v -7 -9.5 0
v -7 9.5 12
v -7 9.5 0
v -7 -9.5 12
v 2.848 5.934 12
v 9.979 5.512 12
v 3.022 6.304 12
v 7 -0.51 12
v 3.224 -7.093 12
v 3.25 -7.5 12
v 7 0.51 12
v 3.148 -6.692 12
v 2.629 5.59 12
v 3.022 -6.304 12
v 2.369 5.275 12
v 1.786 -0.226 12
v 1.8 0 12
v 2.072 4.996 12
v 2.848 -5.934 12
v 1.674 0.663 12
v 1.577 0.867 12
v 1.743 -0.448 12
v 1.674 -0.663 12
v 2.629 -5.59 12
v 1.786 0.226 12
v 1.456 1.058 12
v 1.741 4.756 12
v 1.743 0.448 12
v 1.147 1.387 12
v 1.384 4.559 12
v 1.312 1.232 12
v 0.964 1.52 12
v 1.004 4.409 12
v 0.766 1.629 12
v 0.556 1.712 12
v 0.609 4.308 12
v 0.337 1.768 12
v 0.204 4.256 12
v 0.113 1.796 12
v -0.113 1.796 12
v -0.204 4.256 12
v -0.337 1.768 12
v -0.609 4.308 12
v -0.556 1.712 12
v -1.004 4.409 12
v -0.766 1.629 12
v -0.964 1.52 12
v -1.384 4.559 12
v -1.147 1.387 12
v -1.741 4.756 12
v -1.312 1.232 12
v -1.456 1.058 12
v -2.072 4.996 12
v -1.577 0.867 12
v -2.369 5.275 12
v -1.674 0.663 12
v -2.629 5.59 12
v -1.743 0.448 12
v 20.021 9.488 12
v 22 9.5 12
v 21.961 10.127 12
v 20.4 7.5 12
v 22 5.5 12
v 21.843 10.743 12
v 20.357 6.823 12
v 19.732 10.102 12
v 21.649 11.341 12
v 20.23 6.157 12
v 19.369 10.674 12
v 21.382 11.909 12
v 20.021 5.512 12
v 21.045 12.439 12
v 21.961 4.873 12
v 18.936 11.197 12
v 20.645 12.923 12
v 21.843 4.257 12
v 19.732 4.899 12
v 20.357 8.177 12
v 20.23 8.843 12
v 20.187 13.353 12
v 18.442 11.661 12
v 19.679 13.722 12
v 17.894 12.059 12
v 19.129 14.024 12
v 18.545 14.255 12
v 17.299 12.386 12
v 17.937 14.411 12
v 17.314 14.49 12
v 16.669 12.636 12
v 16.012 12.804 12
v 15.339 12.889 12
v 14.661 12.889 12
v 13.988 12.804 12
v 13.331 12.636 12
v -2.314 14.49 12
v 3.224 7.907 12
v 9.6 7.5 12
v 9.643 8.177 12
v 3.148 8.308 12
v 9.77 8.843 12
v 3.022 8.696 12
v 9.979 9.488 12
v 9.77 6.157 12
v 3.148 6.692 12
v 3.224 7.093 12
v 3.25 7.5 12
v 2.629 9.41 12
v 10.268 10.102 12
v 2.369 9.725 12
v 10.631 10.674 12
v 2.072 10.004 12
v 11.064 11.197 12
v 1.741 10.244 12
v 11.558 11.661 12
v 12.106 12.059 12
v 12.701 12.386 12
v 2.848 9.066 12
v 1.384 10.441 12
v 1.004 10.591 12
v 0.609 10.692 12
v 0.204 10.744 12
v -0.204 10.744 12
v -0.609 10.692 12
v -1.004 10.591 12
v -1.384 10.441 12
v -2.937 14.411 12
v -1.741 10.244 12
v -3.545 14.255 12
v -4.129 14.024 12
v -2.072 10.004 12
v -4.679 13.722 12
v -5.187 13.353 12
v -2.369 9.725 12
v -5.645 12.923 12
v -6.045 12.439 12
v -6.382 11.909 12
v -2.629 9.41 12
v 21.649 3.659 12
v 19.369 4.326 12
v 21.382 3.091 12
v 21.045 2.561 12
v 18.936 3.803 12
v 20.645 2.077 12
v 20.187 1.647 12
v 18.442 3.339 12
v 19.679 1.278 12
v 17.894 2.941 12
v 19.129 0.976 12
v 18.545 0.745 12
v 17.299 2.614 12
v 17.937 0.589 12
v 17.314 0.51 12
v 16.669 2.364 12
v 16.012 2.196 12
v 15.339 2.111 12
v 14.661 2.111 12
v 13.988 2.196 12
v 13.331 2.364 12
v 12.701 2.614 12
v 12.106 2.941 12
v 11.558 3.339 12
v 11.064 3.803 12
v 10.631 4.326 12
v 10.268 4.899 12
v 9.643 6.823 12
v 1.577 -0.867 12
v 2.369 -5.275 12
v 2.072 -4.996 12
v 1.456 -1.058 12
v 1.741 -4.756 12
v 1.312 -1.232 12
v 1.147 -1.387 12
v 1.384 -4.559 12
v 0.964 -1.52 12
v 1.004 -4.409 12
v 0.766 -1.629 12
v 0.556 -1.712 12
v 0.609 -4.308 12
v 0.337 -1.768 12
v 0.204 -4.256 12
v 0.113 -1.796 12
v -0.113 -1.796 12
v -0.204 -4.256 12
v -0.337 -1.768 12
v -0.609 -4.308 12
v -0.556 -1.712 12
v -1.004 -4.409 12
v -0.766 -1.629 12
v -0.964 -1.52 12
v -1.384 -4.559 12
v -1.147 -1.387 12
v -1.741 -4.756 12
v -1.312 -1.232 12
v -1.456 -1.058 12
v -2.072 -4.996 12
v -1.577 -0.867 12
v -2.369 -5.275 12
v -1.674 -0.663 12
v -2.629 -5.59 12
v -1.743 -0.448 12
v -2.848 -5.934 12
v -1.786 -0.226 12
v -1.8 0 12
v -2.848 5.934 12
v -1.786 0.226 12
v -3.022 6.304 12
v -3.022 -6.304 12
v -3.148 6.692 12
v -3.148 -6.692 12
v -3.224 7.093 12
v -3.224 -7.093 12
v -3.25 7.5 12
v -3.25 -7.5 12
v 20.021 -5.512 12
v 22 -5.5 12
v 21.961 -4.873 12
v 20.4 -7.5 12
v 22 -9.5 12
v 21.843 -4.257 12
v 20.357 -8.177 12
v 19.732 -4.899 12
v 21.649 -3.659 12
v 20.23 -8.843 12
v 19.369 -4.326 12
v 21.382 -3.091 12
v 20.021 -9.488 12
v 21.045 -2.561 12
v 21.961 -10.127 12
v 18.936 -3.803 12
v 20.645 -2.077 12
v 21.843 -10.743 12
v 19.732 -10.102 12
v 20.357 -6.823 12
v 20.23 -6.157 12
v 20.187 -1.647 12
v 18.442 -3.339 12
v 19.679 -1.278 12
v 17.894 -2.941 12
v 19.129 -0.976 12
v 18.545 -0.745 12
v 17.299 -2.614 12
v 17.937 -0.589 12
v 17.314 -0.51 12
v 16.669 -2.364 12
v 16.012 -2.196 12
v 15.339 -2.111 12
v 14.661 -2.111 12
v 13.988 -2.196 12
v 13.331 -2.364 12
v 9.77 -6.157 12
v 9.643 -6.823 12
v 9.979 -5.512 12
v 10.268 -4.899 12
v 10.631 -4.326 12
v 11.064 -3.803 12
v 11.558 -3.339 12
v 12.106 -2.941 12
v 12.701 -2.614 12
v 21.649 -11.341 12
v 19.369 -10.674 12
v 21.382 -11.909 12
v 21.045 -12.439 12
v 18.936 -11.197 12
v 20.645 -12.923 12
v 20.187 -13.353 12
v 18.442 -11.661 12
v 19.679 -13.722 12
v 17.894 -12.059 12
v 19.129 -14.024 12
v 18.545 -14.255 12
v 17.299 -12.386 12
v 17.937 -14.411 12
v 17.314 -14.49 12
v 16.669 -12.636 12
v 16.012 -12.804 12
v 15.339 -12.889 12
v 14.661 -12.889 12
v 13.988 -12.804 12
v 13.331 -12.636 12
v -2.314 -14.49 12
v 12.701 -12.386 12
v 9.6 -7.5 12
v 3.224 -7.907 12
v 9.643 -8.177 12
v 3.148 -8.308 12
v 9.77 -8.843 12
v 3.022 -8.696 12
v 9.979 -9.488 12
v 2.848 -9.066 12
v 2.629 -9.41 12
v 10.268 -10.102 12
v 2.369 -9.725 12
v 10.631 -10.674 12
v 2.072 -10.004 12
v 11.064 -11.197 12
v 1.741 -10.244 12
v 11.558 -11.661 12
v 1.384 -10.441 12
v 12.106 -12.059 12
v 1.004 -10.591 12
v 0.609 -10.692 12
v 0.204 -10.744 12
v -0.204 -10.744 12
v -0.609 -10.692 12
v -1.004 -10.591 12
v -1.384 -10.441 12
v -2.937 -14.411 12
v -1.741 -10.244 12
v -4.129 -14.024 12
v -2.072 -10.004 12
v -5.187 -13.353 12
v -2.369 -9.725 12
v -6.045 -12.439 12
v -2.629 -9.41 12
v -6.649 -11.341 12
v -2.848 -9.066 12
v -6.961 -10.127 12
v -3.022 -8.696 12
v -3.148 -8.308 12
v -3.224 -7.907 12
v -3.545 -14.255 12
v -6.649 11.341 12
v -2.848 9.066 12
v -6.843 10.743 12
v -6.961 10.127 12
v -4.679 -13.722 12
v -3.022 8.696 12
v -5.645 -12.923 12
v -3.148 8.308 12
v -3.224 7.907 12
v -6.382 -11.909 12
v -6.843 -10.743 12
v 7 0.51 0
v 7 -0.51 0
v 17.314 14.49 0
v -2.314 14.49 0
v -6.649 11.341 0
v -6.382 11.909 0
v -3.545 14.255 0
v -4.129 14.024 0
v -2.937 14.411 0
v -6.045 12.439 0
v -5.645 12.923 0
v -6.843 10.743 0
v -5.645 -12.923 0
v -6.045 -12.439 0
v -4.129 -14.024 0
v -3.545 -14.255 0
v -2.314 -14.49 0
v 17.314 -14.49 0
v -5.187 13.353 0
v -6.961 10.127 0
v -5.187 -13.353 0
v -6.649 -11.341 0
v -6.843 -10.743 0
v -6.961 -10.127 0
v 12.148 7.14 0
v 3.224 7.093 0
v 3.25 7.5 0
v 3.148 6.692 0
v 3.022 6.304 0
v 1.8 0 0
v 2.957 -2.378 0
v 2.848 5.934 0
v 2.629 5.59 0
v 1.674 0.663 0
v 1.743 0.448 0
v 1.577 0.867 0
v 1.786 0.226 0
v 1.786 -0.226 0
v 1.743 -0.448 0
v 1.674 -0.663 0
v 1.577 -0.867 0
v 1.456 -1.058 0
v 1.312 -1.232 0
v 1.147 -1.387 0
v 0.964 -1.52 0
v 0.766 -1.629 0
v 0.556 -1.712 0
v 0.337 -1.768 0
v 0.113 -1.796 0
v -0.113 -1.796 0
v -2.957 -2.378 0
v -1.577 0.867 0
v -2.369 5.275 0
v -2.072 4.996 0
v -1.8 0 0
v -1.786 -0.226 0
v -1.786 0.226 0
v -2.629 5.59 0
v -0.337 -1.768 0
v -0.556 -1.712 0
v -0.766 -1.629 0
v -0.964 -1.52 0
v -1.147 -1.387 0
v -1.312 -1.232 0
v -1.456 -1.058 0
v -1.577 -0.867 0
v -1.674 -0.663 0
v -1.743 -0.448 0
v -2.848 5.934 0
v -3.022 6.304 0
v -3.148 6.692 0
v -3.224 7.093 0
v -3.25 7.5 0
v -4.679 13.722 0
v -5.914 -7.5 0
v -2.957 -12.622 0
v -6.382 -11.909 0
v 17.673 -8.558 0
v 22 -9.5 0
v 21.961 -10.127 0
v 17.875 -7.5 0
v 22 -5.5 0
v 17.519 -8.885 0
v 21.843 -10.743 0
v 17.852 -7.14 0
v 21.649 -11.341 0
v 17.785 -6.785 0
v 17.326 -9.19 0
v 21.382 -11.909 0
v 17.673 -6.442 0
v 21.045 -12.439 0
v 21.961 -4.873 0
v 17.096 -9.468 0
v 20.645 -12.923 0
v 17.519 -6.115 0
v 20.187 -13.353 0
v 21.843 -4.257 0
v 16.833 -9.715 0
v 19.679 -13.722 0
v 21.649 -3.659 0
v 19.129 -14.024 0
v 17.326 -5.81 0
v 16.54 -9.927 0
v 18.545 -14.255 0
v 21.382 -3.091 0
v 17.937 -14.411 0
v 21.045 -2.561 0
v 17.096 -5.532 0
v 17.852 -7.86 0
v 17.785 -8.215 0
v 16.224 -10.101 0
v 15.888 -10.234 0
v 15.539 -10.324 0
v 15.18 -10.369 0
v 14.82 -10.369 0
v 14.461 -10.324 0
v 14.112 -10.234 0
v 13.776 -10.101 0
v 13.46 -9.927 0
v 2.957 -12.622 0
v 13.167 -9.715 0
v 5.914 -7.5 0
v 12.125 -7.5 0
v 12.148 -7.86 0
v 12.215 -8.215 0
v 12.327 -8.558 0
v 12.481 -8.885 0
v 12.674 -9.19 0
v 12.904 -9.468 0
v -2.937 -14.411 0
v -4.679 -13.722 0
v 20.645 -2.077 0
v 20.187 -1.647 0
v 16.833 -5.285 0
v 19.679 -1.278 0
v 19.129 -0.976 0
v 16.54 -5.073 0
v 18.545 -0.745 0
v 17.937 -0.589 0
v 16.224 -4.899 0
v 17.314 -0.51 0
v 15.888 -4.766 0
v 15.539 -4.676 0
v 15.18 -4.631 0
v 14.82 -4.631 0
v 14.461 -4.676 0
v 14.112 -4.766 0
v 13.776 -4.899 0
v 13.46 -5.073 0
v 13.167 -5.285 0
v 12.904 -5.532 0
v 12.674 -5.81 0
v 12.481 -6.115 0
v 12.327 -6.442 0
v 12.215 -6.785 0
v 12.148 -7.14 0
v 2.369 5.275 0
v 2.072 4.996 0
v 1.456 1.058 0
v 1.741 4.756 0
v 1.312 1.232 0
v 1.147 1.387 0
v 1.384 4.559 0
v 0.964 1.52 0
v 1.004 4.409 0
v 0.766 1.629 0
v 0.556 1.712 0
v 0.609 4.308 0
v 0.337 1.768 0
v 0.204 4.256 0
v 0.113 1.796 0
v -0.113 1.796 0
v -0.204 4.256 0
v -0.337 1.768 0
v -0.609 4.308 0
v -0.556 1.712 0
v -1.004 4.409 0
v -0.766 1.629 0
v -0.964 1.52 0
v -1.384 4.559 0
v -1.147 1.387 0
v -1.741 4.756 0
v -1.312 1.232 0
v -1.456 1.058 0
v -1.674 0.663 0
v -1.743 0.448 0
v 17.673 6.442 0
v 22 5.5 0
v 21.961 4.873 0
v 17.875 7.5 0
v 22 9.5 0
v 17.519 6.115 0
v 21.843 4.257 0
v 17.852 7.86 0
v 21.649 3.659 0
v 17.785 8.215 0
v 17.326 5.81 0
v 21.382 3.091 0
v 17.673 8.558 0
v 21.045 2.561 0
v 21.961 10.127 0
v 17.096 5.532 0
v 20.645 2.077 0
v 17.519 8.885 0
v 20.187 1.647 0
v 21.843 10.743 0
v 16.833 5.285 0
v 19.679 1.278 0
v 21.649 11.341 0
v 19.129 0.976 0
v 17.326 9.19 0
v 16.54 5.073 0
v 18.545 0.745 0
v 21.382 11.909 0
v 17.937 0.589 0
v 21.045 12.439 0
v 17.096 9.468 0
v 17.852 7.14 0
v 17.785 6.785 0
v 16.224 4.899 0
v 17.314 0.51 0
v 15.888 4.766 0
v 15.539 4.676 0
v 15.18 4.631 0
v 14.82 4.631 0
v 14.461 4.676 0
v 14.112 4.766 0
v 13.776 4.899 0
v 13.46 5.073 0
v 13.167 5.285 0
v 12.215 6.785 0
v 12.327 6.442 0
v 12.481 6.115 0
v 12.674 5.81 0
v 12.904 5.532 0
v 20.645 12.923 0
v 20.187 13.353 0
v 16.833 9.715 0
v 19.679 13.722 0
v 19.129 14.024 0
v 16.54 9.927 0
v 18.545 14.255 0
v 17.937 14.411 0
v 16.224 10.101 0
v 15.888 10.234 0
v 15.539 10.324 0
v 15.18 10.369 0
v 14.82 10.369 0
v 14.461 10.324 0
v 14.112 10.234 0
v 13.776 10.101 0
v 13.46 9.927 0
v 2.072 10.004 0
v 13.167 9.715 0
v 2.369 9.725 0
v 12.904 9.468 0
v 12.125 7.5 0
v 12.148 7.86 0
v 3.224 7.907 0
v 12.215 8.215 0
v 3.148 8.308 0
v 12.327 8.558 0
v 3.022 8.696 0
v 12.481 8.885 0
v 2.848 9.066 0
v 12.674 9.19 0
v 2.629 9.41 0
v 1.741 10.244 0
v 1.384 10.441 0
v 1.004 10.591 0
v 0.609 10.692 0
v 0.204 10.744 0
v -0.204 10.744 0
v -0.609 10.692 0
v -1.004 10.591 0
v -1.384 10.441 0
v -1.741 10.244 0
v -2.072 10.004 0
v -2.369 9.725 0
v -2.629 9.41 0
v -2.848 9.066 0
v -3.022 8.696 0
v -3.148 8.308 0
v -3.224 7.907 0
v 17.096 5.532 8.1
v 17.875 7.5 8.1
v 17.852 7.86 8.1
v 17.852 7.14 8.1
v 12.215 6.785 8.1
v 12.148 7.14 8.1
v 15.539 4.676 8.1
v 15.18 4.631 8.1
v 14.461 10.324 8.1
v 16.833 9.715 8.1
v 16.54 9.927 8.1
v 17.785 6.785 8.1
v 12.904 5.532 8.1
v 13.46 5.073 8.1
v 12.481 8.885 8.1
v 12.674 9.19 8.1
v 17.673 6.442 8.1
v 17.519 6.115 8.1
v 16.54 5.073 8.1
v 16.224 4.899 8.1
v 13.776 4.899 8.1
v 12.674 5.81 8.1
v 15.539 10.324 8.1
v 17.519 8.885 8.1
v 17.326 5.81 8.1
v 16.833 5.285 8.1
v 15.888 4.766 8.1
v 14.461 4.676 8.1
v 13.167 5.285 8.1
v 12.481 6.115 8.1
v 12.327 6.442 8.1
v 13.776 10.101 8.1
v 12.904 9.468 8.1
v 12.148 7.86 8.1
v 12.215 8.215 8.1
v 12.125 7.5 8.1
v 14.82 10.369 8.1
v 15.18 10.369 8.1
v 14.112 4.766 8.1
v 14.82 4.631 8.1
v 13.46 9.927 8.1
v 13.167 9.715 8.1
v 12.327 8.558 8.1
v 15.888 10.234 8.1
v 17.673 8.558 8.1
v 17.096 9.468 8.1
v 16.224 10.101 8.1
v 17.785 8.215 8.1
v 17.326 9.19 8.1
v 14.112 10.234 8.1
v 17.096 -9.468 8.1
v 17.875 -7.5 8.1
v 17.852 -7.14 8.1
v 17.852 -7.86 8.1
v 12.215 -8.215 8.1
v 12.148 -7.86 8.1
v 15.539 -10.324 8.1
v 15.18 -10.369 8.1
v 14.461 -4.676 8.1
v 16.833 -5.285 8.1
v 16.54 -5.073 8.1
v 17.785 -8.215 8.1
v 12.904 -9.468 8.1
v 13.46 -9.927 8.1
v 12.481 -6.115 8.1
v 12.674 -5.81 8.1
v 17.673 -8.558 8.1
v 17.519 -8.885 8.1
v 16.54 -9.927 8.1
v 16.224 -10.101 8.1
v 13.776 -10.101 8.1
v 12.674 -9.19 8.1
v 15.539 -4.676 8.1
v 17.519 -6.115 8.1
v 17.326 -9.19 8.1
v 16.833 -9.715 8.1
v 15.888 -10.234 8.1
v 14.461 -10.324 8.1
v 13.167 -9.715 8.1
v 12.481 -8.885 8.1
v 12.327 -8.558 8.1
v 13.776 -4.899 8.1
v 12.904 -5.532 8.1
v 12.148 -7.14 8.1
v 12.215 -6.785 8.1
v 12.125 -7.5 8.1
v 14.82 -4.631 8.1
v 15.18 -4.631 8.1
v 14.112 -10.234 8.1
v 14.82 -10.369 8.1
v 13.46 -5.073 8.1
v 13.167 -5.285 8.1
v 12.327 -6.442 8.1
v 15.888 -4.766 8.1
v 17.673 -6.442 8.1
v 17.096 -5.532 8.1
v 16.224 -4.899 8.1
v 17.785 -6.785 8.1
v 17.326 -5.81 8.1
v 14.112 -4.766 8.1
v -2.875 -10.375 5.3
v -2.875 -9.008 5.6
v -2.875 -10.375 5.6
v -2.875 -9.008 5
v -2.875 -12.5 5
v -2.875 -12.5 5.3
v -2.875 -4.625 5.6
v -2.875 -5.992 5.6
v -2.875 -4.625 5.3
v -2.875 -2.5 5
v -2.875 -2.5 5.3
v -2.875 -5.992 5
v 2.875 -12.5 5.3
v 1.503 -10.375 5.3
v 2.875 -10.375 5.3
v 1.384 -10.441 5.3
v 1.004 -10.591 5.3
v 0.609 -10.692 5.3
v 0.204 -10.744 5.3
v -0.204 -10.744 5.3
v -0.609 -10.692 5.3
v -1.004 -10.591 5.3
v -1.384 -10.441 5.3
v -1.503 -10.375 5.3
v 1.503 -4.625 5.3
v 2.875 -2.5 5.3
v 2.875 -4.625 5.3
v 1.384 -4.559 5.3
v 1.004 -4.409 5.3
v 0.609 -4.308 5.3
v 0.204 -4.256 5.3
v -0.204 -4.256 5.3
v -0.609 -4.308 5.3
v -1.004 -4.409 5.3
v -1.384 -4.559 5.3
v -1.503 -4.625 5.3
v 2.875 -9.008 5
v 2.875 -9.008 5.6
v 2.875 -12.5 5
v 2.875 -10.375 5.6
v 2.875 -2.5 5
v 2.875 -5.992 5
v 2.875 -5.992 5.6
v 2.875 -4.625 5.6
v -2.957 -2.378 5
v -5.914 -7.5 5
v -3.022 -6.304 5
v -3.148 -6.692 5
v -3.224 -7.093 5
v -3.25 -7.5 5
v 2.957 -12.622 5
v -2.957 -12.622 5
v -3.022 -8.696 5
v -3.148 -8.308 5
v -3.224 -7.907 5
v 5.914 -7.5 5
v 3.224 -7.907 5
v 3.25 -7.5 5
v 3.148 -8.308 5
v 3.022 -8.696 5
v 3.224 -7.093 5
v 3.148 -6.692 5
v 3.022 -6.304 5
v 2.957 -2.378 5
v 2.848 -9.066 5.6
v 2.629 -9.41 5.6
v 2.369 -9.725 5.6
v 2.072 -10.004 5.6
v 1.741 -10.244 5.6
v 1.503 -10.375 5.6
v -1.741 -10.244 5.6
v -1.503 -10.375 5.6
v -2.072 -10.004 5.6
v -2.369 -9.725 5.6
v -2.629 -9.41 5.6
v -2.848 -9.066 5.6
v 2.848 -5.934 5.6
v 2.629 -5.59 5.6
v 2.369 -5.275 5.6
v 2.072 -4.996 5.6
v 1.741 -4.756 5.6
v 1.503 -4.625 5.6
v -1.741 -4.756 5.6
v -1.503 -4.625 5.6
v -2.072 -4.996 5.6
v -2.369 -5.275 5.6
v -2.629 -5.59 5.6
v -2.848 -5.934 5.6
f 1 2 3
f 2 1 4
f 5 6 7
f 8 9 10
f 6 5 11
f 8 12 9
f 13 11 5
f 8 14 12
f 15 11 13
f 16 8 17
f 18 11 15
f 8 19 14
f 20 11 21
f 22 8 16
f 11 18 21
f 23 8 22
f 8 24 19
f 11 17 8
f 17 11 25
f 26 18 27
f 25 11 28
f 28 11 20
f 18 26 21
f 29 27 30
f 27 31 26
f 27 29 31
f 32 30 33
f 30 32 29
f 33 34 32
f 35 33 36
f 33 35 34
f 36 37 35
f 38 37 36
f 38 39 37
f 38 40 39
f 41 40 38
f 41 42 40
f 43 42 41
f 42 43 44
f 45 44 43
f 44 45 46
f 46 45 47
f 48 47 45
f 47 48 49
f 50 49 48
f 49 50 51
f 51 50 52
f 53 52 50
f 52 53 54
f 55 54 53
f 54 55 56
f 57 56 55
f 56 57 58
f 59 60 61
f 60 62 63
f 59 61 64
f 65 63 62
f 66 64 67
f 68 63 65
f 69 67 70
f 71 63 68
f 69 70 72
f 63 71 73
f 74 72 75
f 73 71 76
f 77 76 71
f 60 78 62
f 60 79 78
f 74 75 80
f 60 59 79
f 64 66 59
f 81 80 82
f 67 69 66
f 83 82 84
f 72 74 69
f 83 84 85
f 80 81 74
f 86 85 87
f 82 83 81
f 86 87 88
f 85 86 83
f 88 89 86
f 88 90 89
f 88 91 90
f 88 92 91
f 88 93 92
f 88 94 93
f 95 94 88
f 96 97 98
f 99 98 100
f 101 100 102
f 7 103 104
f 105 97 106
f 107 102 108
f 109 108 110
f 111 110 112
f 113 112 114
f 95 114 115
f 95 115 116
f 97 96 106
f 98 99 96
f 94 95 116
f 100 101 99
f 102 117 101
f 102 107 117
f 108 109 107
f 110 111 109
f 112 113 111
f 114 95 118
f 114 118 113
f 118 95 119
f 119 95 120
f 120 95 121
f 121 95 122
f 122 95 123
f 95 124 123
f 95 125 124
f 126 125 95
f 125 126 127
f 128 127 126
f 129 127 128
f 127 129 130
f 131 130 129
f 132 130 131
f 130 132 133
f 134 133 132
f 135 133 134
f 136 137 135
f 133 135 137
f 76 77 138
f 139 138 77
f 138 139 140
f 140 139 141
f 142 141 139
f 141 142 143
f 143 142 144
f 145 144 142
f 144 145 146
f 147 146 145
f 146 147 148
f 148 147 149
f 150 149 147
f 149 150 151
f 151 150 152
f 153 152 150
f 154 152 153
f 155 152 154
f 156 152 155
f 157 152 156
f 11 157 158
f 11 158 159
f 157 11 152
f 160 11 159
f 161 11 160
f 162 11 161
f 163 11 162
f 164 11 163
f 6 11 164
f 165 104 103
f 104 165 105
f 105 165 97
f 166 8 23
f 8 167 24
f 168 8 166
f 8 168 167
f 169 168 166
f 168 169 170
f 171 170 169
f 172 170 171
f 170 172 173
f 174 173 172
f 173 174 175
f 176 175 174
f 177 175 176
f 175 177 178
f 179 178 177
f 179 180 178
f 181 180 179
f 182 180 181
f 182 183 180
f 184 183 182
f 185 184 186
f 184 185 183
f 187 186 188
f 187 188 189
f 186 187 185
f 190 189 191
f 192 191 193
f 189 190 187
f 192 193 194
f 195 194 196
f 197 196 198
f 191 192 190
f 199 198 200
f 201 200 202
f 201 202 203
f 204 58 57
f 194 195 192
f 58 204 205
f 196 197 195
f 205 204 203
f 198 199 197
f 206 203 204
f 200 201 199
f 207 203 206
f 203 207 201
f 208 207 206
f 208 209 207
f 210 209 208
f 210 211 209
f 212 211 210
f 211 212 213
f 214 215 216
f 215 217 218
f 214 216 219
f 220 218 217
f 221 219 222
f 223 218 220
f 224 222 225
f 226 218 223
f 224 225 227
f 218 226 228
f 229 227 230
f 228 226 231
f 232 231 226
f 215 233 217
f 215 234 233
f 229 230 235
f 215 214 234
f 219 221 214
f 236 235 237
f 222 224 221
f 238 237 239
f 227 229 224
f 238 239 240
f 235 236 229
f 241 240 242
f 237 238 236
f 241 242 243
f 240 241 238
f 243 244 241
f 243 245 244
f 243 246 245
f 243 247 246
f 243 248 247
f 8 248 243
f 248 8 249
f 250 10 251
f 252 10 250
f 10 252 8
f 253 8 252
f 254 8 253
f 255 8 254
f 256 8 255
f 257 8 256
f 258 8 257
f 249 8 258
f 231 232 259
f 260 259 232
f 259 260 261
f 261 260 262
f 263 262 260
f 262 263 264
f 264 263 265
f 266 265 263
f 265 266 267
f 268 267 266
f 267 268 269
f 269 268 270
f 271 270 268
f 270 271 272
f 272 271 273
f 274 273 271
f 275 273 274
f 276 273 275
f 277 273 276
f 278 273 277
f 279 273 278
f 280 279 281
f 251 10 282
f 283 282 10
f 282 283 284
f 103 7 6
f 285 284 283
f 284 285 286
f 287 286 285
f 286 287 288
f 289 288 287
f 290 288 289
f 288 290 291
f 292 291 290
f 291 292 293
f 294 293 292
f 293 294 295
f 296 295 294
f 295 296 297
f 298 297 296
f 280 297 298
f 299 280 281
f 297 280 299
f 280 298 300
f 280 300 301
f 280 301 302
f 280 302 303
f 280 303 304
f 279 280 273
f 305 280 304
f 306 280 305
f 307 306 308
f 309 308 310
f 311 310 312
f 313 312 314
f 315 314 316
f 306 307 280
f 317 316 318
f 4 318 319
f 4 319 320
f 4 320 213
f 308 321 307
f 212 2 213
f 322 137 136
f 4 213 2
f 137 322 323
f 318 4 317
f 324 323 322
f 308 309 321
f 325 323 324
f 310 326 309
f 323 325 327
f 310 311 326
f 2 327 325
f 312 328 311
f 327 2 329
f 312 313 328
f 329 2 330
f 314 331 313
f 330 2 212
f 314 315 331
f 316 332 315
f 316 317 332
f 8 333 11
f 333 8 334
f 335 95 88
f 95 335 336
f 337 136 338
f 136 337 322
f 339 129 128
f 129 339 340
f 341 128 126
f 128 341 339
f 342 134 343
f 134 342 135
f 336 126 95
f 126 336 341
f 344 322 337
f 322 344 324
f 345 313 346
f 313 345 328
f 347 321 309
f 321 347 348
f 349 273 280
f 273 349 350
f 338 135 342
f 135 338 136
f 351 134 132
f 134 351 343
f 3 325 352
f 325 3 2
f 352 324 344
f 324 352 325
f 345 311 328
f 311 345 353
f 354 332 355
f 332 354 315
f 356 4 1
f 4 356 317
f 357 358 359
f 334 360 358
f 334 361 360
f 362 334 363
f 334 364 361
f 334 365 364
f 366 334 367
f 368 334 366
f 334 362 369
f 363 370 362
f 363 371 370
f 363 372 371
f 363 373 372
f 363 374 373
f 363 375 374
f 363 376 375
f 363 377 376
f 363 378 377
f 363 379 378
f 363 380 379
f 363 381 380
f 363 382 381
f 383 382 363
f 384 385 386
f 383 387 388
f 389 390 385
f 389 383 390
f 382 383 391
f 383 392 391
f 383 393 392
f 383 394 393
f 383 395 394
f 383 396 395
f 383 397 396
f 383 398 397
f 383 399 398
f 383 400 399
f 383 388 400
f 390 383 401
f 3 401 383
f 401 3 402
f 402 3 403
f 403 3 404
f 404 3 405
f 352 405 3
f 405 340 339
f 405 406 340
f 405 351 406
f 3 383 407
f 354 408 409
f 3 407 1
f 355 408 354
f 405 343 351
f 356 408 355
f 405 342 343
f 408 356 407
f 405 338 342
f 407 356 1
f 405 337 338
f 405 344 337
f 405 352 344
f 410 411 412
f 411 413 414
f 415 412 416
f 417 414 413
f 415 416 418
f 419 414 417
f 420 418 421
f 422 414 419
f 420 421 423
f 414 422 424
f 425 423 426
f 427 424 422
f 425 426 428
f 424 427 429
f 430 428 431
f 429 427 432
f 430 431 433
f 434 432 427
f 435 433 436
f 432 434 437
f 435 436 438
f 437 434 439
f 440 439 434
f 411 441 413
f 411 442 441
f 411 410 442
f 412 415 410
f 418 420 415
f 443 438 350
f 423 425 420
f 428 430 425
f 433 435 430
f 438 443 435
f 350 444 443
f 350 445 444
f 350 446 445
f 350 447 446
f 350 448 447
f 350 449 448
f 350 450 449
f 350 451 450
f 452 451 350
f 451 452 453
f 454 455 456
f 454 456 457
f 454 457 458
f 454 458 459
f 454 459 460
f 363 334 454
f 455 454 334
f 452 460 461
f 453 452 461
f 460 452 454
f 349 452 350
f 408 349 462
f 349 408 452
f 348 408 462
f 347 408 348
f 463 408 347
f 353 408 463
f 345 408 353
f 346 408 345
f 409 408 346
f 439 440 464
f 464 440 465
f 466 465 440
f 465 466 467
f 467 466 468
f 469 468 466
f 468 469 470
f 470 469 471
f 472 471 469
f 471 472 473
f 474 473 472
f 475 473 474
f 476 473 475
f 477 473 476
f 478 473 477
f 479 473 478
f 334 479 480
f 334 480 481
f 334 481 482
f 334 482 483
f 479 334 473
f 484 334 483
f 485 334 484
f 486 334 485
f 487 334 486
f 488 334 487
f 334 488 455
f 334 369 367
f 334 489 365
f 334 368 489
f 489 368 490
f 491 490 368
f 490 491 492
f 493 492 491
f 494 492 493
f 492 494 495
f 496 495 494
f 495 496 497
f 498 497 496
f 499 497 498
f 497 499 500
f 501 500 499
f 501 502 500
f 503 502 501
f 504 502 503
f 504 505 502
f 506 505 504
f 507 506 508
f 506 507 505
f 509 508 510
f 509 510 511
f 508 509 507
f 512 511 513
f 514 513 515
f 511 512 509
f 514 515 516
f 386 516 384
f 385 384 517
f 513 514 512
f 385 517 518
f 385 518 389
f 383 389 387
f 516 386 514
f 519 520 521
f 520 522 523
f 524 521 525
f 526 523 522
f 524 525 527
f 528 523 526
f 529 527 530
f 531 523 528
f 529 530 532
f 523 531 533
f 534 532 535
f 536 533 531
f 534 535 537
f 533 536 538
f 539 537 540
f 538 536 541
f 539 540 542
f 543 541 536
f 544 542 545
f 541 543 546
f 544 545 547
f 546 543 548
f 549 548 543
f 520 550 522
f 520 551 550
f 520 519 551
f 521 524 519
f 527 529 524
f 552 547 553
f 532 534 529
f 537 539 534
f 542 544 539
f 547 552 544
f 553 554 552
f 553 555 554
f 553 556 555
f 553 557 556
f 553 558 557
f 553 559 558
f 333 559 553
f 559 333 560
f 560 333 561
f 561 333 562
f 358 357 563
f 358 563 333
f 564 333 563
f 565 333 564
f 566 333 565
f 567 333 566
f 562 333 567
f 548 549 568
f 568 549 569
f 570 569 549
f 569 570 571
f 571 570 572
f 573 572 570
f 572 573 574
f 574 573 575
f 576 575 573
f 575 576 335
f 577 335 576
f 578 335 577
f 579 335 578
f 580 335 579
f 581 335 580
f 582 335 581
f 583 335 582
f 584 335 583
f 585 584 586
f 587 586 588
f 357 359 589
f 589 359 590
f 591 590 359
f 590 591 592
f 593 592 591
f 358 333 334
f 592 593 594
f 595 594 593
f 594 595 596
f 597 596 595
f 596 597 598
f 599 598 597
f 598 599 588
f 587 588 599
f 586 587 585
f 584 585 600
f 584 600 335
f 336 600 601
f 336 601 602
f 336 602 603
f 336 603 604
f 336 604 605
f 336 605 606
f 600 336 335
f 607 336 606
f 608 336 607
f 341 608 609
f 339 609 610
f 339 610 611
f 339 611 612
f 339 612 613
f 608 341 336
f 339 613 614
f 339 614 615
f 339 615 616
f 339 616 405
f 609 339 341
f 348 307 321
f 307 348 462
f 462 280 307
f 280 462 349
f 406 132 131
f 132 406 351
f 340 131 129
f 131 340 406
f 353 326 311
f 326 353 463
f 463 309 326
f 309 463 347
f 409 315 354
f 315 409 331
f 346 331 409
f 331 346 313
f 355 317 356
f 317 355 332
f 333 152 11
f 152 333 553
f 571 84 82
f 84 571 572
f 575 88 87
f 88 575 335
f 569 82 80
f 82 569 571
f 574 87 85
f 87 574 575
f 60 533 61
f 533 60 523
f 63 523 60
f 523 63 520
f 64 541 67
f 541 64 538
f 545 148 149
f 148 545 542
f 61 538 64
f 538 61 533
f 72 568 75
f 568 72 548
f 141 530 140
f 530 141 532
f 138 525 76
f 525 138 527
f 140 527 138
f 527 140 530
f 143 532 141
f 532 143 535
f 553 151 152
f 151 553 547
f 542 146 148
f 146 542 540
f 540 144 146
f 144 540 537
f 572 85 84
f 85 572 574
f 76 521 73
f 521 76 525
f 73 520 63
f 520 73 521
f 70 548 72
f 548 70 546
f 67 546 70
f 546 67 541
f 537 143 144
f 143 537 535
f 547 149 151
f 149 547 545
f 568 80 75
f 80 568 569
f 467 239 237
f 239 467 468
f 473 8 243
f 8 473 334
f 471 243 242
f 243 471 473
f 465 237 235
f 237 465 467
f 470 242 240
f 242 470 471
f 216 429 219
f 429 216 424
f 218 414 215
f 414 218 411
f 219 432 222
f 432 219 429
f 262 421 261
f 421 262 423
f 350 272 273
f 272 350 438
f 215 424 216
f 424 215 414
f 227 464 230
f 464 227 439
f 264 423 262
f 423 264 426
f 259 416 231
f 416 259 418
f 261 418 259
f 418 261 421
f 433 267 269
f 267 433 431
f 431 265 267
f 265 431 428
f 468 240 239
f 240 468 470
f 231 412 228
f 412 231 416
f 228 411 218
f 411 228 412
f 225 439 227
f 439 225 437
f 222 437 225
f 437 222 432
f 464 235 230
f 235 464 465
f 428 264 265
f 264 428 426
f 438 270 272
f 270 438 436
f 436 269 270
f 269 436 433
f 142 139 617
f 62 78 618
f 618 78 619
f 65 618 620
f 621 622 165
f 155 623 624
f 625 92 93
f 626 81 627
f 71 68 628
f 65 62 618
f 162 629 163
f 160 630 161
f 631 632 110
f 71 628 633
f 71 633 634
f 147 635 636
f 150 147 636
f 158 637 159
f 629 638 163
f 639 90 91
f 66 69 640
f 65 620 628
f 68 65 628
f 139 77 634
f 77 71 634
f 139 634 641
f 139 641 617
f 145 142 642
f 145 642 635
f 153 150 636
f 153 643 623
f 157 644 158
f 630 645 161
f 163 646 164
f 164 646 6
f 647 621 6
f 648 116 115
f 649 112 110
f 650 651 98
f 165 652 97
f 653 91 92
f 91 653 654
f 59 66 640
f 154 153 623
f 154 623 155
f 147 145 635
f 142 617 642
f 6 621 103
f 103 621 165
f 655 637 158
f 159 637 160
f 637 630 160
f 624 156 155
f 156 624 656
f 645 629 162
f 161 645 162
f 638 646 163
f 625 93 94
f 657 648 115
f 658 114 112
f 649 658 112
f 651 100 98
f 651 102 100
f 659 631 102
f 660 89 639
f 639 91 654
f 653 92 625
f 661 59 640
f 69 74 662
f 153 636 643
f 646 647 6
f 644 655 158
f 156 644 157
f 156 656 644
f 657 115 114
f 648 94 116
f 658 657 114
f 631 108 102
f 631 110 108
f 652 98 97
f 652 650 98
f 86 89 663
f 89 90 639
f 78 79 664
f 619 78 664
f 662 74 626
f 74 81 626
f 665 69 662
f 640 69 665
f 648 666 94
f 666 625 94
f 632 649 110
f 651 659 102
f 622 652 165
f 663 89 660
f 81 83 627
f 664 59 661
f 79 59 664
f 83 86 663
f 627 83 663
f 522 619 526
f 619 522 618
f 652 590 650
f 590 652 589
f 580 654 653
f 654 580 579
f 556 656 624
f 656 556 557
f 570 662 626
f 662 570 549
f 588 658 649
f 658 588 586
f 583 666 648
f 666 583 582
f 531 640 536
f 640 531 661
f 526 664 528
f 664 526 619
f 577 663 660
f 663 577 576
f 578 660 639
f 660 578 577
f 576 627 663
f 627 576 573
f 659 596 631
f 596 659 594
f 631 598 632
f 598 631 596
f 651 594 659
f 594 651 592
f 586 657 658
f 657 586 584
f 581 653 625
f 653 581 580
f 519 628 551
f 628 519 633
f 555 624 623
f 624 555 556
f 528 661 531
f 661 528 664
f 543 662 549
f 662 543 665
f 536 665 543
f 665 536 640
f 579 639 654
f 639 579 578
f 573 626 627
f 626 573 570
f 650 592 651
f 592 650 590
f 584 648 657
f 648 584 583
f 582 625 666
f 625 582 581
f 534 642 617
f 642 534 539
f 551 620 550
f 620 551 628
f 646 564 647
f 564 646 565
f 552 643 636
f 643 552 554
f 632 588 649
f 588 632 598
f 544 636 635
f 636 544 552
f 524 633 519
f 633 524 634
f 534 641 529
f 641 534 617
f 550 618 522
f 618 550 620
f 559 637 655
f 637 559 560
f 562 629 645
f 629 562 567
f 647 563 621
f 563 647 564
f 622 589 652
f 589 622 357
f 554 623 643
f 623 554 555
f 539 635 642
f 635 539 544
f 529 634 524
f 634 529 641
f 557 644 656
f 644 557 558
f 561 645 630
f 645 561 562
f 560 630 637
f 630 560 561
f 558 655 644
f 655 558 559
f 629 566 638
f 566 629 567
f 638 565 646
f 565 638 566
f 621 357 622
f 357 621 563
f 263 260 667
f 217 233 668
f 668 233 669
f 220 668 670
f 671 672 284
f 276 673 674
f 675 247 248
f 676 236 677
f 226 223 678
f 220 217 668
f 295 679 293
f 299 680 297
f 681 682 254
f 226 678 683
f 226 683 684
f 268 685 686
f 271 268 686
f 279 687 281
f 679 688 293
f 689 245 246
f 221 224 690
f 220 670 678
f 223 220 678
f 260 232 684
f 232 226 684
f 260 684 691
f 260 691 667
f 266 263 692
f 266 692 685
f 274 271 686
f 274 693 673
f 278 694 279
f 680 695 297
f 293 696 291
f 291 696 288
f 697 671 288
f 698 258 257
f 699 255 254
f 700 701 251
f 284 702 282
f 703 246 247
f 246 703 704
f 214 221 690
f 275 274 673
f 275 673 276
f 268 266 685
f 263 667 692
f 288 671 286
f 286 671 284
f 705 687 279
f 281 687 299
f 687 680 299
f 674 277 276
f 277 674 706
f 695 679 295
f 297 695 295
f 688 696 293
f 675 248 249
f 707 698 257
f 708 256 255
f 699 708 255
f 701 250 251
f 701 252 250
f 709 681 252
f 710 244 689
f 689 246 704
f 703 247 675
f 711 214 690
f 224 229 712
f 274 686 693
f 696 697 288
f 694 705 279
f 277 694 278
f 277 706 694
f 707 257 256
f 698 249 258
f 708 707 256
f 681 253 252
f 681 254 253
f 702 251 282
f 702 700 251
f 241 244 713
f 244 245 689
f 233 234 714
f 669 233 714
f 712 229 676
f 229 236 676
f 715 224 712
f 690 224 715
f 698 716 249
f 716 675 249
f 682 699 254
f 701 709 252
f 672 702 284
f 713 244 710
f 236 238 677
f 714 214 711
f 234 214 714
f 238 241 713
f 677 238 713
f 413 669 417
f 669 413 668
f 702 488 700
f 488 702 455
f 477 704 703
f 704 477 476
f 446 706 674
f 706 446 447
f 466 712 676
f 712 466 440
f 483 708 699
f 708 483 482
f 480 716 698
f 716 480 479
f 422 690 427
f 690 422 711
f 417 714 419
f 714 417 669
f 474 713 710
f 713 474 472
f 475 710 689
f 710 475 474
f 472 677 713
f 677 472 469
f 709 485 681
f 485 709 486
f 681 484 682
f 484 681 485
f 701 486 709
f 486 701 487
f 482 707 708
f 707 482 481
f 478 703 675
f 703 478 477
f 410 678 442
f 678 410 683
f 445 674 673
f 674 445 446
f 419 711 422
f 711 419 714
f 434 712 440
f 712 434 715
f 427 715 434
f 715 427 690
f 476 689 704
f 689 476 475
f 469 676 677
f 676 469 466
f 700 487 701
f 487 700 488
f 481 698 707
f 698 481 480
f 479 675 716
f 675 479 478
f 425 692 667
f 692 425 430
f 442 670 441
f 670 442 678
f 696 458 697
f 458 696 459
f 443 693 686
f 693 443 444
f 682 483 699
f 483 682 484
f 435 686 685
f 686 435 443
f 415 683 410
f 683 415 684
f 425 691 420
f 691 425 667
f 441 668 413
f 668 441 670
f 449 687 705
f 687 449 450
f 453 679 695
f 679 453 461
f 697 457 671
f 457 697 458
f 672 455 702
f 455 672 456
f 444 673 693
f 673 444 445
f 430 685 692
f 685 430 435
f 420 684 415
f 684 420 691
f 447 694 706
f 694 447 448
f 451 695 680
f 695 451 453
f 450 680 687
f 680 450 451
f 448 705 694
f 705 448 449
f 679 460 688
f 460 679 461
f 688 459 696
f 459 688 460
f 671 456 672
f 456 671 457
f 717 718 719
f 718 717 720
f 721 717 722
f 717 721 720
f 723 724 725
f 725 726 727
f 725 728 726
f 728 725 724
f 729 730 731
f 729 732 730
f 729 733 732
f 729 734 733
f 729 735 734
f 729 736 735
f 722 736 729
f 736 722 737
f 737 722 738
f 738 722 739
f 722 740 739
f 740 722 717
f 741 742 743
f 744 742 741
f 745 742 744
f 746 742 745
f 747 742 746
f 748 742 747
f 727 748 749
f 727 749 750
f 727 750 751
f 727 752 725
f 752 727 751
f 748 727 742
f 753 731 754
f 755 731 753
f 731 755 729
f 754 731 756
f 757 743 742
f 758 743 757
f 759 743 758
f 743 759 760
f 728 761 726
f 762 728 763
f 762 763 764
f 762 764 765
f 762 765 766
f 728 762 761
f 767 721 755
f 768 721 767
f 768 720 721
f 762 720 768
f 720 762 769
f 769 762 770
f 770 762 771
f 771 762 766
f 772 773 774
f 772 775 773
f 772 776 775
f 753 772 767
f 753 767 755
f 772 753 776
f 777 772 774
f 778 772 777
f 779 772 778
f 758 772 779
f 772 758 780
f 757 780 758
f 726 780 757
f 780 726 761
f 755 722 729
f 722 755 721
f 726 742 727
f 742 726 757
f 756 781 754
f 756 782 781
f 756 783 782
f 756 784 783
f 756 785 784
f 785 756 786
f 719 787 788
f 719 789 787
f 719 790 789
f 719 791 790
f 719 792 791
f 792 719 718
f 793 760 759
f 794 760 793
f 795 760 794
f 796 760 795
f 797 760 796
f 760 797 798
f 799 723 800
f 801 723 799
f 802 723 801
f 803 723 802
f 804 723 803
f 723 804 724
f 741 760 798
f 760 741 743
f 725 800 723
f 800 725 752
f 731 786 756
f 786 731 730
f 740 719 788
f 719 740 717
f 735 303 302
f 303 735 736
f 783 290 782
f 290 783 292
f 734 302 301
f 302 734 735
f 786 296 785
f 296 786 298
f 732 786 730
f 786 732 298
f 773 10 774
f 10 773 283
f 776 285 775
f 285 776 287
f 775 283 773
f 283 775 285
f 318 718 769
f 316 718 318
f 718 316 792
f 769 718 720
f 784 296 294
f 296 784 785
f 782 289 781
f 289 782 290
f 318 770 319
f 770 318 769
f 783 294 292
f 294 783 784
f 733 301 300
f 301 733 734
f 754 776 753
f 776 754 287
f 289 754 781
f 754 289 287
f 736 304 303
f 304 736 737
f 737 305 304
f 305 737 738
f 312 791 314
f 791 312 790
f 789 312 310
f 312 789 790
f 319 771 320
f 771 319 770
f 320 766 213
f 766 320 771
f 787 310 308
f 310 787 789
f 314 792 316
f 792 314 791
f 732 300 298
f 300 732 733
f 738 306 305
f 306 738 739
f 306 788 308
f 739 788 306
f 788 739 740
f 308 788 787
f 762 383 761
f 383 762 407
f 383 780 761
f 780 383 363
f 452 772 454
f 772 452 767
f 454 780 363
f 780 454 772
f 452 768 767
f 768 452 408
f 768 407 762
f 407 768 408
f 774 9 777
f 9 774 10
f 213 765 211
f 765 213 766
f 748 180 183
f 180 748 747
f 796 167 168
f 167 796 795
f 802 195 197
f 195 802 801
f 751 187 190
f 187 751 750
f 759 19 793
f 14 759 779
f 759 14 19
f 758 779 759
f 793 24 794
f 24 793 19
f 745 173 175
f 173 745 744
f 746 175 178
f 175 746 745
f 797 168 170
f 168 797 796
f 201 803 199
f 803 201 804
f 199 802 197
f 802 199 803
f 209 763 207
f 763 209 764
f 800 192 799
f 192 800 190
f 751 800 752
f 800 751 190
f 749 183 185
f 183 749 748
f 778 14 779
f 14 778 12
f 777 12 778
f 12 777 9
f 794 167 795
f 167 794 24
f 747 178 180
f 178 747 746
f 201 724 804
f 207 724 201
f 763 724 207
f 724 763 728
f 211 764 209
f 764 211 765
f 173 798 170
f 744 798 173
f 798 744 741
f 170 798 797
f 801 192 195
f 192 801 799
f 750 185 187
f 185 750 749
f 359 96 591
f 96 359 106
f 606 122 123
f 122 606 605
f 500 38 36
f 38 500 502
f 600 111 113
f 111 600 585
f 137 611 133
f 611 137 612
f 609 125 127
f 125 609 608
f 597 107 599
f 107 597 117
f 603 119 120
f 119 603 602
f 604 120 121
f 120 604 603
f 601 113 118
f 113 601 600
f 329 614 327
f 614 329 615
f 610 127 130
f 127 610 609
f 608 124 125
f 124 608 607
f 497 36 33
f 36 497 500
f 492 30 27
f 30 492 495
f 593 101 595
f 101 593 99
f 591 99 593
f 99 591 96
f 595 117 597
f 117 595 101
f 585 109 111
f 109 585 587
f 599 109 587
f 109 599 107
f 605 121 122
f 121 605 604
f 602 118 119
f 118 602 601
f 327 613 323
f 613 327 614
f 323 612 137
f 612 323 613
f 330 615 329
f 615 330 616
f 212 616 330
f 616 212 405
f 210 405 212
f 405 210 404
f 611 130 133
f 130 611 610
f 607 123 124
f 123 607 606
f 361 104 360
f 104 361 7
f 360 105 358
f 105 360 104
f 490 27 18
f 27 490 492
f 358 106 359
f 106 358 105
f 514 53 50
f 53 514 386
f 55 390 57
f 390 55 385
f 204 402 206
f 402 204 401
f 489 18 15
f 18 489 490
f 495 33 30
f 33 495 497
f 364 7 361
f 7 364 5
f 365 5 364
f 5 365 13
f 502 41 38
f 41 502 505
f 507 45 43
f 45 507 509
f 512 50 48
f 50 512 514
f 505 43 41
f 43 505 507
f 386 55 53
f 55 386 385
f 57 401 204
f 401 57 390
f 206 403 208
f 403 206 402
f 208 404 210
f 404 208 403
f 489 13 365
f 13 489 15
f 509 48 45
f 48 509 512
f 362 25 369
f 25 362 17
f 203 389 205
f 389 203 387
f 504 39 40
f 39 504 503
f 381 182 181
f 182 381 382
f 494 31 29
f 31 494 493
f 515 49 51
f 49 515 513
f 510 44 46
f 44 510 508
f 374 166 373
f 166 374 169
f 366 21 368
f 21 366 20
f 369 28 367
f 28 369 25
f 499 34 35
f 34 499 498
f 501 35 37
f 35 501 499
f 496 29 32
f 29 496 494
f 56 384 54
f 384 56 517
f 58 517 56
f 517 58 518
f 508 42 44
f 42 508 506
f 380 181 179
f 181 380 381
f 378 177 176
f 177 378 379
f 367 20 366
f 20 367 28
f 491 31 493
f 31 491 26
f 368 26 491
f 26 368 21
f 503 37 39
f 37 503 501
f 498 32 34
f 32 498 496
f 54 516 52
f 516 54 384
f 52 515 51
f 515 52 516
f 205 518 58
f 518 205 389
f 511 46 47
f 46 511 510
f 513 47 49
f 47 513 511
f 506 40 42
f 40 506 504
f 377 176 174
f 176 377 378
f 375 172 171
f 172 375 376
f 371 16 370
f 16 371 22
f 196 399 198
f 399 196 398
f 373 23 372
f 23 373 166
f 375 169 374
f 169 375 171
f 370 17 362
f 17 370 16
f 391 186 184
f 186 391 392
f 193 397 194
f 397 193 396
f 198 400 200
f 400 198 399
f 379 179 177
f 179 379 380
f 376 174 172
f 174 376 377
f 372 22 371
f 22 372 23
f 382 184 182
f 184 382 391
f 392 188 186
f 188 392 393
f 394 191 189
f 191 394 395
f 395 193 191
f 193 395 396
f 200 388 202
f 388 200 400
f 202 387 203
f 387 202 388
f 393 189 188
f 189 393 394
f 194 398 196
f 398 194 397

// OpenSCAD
$fn = 50;


difference() {
	union() {
		hull() {
			translate(v = [-2.0000000000, 9.5000000000, 0]) {
				cylinder(h = 12, r = 5);
			}
			translate(v = [2.0000000000, 9.5000000000, 0]) {
				cylinder(h = 12, r = 5);
			}
			translate(v = [-2.0000000000, -9.5000000000, 0]) {
				cylinder(h = 12, r = 5);
			}
			translate(v = [2.0000000000, -9.5000000000, 0]) {
				cylinder(h = 12, r = 5);
			}
		}
		translate(v = [7.5000000000, 7.5000000000, 0]) {
			hull() {
				translate(v = [-9.5000000000, 2.0000000000, 0]) {
					cylinder(h = 12, r = 5);
				}
				translate(v = [9.5000000000, 2.0000000000, 0]) {
					cylinder(h = 12, r = 5);
				}
				translate(v = [-9.5000000000, -2.0000000000, 0]) {
					cylinder(h = 12, r = 5);
				}
				translate(v = [9.5000000000, -2.0000000000, 0]) {
					cylinder(h = 12, r = 5);
				}
			}
		}
		translate(v = [7.5000000000, -7.5000000000, 0]) {
			hull() {
				translate(v = [-9.5000000000, 2.0000000000, 0]) {
					cylinder(h = 12, r = 5);
				}
				translate(v = [9.5000000000, 2.0000000000, 0]) {
					cylinder(h = 12, r = 5);
				}
				translate(v = [-9.5000000000, -2.0000000000, 0]) {
					cylinder(h = 12, r = 5);
				}
				translate(v = [9.5000000000, -2.0000000000, 0]) {
					cylinder(h = 12, r = 5);
				}
			}
		}
	}
	union() {
		translate(v = [15.0000000000, 7.5000000000, 12]) {
			rotate(a = [0, 0, 0]) {
				difference() {
					union() {
						#translate(v = [0, 0, -12.0000000000]) {
							cylinder(h = 12, r = 2.6000000000);
						}
						#translate(v = [0, 0, -3.9000000000]) {
							cylinder(h = 3.9000000000, r1 = 2.8750000000, r2 = 5.4000000000);
						}
						#translate(v = [0, 0, -12.0000000000]) {
							cylinder(h = 12, r = 2.8750000000);
						}
						#translate(v = [0, 0, -12.0000000000]) {
							cylinder(h = 12, r = 2.6000000000);
						}
					}
					union();
				}
			}
		}
		translate(v = [15.0000000000, -7.5000000000, 12]) {
			rotate(a = [0, 0, 0]) {
				difference() {
					union() {
						#translate(v = [0, 0, -12.0000000000]) {
							cylinder(h = 12, r = 2.6000000000);
						}
						#translate(v = [0, 0, -3.9000000000]) {
							cylinder(h = 3.9000000000, r1 = 2.8750000000, r2 = 5.4000000000);
						}
						#translate(v = [0, 0, -12.0000000000]) {
							cylinder(h = 12, r = 2.8750000000);
						}
						#translate(v = [0, 0, -12.0000000000]) {
							cylinder(h = 12, r = 2.6000000000);
						}
					}
					union();
				}
			}
		}
		translate(v = [0.0000000000, -7.5000000000, 0]) {
			rotate(a = [0, 0, 0]) {
				difference() {
					union() {
						#translate(v = [-2.8750000000, -5.0000000000, -0.3000000000]) {
							cube(size = [5.7500000000, 10, 0.3000000000]);
						}
						#translate(v = [-2.8750000000, -2.8750000000, -0.6000000000]) {
							cube(size = [5.7500000000, 5.7500000000, 0.3000000000]);
						}
						#translate(v = [-2.8750000000, -5.0000000000, 5]) {
							cube(size = [5.7500000000, 10, 0.3000000000]);
						}
						#translate(v = [-2.8750000000, -2.8750000000, 5.3000000000]) {
							cube(size = [5.7500000000, 5.7500000000, 0.3000000000]);
						}
						#translate(v = [0, 0, -100.0000000000]) {
							cylinder(h = 200, r = 3.2500000000);
						}
						#linear_extrude(height = 5) {
							polygon(points = [[5.9142500000, 0.0000000000], [2.9571250000, 5.1218907443], [-2.9571250000, 5.1218907443], [-5.9142500000, 0.0000000000], [-2.9571250000, -5.1218907443], [2.9571250000, -5.1218907443]]);
						}
						#translate(v = [-2.8750000000, -5.0000000000, -0.3000000000]) {
							cube(size = [5.7500000000, 10, 0.3000000000]);
						}
						#translate(v = [-2.8750000000, -2.8750000000, -0.6000000000]) {
							cube(size = [5.7500000000, 5.7500000000, 0.3000000000]);
						}
						#translate(v = [-2.8750000000, -5.0000000000, 5]) {
							cube(size = [5.7500000000, 10, 0.3000000000]);
						}
						#translate(v = [-2.8750000000, -2.8750000000, 5.3000000000]) {
							cube(size = [5.7500000000, 5.7500000000, 0.3000000000]);
						}
						#translate(v = [0, 0, -100.0000000000]) {
							cylinder(h = 200, r = 3.2500000000);
						}
						#translate(v = [-2.8750000000, -5.0000000000, -0.3000000000]) {
							cube(size = [5.7500000000, 10, 0.3000000000]);
						}
						#translate(v = [-2.8750000000, -2.8750000000, -0.6000000000]) {
							cube(size = [5.7500000000, 5.7500000000, 0.3000000000]);
						}
						#translate(v = [-2.8750000000, -5.0000000000, 5]) {
							cube(size = [5.7500000000, 10, 0.3000000000]);
						}
						#translate(v = [-2.8750000000, -2.8750000000, 5.3000000000]) {
							cube(size = [5.7500000000, 5.7500000000, 0.3000000000]);
						}
						#translate(v = [0, 0, -100.0000000000]) {
							cylinder(h = 200, r = 3.2500000000);
						}
					}
					union();
				}
			}
		}
		translate(v = [0.0000000000, -7.5000000000, 0]) {
			translate(v = [0, 0, -100]) {
				cylinder(h = 200, r = 3.2500000000);
			}
		}
		translate(v = [0.0000000000, 7.5000000000, 0]) {
			translate(v = [0, 0, -100]) {
				cylinder(h = 200, r = 3.2500000000);
			}
		}
		translate(v = [0.0000000000, -7.5000000000, 0]) {
			translate(v = [0, 0, -100]) {
				cylinder(h = 200, r = 1.8000000000);
			}
		}
		translate(v = [0, 0, -100]) {
			cylinder(h = 200, r = 1.8000000000);
		}
		translate(v = [0.0000000000, 7.5000000000, 0]) {
			translate(v = [0, 0, -100]) {
				cylinder(h = 200, r = 1.8000000000);
			}
		}
	}
}
